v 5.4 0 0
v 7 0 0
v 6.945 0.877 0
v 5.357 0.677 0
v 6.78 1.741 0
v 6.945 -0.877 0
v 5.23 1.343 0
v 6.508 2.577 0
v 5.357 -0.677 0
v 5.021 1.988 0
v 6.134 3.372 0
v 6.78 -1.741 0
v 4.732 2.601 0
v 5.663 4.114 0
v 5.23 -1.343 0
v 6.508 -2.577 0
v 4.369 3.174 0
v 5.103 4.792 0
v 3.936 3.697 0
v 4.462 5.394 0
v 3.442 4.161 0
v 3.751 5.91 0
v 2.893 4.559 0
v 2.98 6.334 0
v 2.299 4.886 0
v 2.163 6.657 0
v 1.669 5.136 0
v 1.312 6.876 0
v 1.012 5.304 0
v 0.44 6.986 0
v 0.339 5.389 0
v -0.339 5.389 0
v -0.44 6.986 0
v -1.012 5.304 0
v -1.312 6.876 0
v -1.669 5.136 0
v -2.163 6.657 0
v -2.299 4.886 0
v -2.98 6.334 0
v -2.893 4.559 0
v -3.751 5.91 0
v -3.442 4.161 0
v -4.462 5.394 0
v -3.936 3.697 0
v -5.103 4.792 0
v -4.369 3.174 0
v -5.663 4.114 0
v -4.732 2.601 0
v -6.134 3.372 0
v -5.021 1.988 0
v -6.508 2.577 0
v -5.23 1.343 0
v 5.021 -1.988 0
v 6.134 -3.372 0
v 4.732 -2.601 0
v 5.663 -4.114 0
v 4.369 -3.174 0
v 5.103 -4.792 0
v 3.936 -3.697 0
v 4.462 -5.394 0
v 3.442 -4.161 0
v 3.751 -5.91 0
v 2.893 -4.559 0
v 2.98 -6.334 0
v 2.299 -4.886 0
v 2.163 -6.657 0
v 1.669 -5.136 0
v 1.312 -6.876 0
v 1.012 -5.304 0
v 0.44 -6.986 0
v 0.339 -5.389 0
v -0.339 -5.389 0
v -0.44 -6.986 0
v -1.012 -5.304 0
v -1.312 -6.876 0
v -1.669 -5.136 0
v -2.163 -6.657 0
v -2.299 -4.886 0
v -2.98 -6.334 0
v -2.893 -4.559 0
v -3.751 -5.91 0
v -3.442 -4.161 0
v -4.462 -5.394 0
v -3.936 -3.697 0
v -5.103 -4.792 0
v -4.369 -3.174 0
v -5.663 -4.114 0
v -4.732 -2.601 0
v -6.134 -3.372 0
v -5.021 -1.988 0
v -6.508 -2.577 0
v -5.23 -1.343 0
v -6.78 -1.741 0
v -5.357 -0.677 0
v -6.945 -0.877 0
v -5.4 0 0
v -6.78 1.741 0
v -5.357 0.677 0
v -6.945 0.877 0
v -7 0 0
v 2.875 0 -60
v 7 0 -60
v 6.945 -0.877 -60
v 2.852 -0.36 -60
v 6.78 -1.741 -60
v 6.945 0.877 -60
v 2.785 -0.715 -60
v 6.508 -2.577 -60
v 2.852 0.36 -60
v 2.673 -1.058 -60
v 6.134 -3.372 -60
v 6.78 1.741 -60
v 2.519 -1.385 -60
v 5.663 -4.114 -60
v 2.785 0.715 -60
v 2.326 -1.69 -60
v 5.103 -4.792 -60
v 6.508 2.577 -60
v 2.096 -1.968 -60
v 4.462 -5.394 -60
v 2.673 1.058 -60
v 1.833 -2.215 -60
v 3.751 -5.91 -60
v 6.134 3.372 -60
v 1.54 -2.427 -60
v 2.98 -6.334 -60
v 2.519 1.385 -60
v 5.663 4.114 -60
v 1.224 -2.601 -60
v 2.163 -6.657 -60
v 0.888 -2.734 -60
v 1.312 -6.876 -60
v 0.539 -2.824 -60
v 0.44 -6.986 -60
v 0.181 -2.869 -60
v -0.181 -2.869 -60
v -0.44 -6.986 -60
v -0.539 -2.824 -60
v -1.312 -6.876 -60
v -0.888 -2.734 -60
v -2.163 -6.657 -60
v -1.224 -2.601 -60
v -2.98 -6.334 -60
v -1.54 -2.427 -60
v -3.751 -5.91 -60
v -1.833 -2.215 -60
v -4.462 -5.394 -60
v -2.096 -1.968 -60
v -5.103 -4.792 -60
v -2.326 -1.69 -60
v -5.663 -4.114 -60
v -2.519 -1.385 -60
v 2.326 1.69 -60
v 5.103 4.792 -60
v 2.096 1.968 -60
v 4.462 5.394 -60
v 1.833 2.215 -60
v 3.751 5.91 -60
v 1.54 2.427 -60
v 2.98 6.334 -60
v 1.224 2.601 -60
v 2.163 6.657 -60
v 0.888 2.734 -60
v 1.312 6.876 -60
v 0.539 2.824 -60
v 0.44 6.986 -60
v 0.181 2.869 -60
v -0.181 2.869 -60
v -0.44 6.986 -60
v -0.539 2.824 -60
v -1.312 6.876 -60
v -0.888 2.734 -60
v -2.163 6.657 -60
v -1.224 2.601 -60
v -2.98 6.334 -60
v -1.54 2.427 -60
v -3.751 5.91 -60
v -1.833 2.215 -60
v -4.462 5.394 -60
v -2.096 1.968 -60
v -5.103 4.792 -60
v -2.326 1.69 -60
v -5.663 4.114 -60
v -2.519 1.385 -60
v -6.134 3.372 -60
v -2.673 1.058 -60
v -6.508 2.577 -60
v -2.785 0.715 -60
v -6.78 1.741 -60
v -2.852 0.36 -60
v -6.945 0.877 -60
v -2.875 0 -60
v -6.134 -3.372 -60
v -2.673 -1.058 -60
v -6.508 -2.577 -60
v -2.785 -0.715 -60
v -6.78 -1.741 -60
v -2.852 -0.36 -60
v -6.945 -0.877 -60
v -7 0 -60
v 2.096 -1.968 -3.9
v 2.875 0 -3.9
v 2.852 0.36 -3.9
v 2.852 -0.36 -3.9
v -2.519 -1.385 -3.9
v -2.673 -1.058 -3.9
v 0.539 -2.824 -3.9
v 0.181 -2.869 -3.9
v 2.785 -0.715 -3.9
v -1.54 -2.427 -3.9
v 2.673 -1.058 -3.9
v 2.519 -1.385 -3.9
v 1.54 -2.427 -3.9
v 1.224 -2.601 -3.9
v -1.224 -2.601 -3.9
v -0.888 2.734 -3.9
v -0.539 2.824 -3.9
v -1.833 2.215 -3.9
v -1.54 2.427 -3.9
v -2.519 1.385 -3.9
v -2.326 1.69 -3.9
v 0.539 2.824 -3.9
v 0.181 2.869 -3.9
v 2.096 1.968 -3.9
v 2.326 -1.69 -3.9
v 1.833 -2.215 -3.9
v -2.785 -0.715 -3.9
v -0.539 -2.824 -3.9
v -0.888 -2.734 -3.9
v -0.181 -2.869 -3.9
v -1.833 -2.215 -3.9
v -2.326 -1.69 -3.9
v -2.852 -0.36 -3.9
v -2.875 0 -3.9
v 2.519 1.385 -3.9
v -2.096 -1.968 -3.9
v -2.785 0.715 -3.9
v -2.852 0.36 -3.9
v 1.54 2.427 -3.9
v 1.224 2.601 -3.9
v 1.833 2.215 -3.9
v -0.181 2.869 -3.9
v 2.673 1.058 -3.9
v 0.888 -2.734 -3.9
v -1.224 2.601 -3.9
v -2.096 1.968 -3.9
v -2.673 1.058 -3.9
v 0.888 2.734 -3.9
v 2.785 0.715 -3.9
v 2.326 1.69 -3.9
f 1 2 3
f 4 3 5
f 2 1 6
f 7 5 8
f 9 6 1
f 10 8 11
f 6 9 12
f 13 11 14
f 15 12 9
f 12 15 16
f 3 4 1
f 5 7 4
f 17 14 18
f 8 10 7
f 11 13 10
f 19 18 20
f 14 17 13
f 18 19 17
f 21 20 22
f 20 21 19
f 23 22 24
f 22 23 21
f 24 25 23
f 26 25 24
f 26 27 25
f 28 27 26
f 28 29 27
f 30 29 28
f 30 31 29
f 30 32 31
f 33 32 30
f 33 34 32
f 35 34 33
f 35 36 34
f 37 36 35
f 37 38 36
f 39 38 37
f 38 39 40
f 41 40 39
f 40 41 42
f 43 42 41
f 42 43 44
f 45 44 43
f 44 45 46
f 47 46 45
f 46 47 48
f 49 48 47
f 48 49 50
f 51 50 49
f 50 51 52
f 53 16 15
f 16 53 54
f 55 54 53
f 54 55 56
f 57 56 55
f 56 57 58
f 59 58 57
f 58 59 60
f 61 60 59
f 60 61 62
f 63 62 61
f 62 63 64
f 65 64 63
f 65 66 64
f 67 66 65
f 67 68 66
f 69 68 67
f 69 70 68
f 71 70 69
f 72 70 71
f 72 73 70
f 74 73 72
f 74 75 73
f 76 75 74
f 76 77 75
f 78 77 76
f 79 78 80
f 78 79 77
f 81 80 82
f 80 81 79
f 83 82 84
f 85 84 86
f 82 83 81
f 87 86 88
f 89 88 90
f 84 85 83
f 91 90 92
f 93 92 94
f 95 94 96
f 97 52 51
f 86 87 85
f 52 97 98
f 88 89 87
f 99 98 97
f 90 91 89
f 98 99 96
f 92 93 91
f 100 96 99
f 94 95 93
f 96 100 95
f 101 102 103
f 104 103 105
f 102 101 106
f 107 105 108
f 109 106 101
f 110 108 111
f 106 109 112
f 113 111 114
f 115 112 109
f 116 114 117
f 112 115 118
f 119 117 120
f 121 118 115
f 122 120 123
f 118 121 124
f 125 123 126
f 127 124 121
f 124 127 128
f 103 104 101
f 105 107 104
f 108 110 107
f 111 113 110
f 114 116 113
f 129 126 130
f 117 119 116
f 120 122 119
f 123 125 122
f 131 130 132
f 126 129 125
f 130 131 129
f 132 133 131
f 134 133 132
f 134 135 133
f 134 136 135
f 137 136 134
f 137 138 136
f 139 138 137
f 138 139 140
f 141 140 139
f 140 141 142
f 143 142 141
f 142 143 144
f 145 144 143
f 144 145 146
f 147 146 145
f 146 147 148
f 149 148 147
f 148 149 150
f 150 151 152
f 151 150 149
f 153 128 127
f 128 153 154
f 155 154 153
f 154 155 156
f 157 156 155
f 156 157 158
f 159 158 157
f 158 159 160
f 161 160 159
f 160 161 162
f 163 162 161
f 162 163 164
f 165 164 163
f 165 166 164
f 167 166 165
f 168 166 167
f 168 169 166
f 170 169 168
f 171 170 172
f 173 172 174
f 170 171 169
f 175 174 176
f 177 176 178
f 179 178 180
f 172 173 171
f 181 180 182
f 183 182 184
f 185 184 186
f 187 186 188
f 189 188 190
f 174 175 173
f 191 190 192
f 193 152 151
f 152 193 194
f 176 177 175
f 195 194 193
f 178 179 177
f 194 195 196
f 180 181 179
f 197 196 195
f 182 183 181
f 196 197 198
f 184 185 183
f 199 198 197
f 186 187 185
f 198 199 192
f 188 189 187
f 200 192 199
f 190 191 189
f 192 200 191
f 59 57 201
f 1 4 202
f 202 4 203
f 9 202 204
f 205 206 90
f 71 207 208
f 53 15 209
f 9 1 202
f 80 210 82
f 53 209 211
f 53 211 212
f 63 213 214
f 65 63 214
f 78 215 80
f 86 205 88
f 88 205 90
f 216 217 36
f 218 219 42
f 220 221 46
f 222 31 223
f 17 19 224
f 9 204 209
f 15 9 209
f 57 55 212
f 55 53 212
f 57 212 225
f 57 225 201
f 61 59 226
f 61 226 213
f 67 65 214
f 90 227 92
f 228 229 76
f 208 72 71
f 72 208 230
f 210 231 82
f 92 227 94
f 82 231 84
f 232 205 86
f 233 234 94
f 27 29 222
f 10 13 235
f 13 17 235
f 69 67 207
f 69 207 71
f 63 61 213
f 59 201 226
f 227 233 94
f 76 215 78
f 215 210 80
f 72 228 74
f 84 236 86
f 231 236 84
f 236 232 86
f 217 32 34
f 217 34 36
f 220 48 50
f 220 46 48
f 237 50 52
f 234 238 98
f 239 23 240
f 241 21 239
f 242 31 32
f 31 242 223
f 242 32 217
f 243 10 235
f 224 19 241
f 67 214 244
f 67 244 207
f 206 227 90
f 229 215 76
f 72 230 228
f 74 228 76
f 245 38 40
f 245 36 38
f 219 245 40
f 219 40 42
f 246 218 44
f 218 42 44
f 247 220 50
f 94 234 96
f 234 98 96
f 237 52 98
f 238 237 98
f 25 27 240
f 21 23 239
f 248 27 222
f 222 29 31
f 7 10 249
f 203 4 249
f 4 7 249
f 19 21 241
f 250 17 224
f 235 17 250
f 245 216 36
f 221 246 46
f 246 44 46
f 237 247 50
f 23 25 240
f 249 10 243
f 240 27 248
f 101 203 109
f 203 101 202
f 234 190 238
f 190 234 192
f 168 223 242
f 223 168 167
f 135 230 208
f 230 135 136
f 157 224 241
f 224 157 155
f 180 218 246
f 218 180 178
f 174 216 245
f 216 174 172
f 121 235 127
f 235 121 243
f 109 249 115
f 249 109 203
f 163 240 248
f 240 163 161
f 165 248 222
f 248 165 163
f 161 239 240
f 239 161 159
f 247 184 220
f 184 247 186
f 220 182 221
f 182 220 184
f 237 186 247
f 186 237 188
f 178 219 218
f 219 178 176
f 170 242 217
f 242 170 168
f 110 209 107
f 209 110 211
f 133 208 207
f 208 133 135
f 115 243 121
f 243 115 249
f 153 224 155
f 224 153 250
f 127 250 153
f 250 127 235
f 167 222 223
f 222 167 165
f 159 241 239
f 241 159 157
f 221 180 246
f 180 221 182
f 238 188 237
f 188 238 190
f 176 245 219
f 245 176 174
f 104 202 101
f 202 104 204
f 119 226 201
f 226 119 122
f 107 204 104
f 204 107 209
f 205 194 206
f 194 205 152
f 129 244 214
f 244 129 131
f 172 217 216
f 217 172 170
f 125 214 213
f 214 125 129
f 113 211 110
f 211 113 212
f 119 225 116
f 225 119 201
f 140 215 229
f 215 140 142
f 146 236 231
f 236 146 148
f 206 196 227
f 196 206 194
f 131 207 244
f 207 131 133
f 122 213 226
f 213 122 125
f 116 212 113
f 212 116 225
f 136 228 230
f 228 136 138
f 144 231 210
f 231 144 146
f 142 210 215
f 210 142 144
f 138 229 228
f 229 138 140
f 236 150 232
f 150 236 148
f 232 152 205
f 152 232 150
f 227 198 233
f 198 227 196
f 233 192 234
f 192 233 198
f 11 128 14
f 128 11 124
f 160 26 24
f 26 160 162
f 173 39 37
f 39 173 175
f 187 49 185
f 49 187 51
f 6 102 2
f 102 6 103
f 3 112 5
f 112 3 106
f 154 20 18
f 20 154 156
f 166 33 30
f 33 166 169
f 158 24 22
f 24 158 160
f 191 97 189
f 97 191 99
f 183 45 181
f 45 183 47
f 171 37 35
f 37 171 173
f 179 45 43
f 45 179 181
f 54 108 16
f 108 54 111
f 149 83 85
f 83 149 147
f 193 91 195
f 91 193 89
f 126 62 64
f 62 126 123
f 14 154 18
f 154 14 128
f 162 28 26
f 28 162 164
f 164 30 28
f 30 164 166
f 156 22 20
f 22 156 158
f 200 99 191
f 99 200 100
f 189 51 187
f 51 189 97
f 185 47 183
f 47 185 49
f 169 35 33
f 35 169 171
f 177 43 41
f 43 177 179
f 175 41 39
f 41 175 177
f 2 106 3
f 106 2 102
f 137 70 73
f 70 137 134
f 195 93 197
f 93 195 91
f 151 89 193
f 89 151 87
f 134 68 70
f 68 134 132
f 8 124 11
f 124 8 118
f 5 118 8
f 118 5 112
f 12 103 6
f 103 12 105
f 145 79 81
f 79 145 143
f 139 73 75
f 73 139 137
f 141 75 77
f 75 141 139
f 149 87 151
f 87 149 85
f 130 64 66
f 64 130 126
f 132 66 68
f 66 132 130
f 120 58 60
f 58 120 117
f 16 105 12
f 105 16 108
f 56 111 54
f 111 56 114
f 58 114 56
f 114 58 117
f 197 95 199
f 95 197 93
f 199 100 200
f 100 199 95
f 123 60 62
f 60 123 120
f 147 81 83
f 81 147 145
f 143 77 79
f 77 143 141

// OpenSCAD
$fn = 50;


difference() {
	union() {
		translate(v = [0, 0, -60.0000000000]) {
			cylinder(h = 60, r = 7.0000000000);
		}
		cylinder(h = 0, r = 16.0000000000);
	}
	union() {
		translate(v = [0, 0, 0]) {
			rotate(a = [0, 0, 0]) {
				difference() {
					union() {
						#translate(v = [0, 0, -60.0000000000]) {
							cylinder(h = 60, r = 2.6000000000);
						}
						#translate(v = [0, 0, -3.9000000000]) {
							cylinder(h = 3.9000000000, r = 7.0000000000, r1 = 2.8750000000, r2 = 5.4000000000);
						}
						#translate(v = [0, 0, -60.0000000000]) {
							cylinder(h = 60, r = 2.8750000000);
						}
						#translate(v = [0, 0, -60.0000000000]) {
							cylinder(h = 60, r = 2.6000000000);
						}
					}
					union();
				}
			}
		}
	}
}
